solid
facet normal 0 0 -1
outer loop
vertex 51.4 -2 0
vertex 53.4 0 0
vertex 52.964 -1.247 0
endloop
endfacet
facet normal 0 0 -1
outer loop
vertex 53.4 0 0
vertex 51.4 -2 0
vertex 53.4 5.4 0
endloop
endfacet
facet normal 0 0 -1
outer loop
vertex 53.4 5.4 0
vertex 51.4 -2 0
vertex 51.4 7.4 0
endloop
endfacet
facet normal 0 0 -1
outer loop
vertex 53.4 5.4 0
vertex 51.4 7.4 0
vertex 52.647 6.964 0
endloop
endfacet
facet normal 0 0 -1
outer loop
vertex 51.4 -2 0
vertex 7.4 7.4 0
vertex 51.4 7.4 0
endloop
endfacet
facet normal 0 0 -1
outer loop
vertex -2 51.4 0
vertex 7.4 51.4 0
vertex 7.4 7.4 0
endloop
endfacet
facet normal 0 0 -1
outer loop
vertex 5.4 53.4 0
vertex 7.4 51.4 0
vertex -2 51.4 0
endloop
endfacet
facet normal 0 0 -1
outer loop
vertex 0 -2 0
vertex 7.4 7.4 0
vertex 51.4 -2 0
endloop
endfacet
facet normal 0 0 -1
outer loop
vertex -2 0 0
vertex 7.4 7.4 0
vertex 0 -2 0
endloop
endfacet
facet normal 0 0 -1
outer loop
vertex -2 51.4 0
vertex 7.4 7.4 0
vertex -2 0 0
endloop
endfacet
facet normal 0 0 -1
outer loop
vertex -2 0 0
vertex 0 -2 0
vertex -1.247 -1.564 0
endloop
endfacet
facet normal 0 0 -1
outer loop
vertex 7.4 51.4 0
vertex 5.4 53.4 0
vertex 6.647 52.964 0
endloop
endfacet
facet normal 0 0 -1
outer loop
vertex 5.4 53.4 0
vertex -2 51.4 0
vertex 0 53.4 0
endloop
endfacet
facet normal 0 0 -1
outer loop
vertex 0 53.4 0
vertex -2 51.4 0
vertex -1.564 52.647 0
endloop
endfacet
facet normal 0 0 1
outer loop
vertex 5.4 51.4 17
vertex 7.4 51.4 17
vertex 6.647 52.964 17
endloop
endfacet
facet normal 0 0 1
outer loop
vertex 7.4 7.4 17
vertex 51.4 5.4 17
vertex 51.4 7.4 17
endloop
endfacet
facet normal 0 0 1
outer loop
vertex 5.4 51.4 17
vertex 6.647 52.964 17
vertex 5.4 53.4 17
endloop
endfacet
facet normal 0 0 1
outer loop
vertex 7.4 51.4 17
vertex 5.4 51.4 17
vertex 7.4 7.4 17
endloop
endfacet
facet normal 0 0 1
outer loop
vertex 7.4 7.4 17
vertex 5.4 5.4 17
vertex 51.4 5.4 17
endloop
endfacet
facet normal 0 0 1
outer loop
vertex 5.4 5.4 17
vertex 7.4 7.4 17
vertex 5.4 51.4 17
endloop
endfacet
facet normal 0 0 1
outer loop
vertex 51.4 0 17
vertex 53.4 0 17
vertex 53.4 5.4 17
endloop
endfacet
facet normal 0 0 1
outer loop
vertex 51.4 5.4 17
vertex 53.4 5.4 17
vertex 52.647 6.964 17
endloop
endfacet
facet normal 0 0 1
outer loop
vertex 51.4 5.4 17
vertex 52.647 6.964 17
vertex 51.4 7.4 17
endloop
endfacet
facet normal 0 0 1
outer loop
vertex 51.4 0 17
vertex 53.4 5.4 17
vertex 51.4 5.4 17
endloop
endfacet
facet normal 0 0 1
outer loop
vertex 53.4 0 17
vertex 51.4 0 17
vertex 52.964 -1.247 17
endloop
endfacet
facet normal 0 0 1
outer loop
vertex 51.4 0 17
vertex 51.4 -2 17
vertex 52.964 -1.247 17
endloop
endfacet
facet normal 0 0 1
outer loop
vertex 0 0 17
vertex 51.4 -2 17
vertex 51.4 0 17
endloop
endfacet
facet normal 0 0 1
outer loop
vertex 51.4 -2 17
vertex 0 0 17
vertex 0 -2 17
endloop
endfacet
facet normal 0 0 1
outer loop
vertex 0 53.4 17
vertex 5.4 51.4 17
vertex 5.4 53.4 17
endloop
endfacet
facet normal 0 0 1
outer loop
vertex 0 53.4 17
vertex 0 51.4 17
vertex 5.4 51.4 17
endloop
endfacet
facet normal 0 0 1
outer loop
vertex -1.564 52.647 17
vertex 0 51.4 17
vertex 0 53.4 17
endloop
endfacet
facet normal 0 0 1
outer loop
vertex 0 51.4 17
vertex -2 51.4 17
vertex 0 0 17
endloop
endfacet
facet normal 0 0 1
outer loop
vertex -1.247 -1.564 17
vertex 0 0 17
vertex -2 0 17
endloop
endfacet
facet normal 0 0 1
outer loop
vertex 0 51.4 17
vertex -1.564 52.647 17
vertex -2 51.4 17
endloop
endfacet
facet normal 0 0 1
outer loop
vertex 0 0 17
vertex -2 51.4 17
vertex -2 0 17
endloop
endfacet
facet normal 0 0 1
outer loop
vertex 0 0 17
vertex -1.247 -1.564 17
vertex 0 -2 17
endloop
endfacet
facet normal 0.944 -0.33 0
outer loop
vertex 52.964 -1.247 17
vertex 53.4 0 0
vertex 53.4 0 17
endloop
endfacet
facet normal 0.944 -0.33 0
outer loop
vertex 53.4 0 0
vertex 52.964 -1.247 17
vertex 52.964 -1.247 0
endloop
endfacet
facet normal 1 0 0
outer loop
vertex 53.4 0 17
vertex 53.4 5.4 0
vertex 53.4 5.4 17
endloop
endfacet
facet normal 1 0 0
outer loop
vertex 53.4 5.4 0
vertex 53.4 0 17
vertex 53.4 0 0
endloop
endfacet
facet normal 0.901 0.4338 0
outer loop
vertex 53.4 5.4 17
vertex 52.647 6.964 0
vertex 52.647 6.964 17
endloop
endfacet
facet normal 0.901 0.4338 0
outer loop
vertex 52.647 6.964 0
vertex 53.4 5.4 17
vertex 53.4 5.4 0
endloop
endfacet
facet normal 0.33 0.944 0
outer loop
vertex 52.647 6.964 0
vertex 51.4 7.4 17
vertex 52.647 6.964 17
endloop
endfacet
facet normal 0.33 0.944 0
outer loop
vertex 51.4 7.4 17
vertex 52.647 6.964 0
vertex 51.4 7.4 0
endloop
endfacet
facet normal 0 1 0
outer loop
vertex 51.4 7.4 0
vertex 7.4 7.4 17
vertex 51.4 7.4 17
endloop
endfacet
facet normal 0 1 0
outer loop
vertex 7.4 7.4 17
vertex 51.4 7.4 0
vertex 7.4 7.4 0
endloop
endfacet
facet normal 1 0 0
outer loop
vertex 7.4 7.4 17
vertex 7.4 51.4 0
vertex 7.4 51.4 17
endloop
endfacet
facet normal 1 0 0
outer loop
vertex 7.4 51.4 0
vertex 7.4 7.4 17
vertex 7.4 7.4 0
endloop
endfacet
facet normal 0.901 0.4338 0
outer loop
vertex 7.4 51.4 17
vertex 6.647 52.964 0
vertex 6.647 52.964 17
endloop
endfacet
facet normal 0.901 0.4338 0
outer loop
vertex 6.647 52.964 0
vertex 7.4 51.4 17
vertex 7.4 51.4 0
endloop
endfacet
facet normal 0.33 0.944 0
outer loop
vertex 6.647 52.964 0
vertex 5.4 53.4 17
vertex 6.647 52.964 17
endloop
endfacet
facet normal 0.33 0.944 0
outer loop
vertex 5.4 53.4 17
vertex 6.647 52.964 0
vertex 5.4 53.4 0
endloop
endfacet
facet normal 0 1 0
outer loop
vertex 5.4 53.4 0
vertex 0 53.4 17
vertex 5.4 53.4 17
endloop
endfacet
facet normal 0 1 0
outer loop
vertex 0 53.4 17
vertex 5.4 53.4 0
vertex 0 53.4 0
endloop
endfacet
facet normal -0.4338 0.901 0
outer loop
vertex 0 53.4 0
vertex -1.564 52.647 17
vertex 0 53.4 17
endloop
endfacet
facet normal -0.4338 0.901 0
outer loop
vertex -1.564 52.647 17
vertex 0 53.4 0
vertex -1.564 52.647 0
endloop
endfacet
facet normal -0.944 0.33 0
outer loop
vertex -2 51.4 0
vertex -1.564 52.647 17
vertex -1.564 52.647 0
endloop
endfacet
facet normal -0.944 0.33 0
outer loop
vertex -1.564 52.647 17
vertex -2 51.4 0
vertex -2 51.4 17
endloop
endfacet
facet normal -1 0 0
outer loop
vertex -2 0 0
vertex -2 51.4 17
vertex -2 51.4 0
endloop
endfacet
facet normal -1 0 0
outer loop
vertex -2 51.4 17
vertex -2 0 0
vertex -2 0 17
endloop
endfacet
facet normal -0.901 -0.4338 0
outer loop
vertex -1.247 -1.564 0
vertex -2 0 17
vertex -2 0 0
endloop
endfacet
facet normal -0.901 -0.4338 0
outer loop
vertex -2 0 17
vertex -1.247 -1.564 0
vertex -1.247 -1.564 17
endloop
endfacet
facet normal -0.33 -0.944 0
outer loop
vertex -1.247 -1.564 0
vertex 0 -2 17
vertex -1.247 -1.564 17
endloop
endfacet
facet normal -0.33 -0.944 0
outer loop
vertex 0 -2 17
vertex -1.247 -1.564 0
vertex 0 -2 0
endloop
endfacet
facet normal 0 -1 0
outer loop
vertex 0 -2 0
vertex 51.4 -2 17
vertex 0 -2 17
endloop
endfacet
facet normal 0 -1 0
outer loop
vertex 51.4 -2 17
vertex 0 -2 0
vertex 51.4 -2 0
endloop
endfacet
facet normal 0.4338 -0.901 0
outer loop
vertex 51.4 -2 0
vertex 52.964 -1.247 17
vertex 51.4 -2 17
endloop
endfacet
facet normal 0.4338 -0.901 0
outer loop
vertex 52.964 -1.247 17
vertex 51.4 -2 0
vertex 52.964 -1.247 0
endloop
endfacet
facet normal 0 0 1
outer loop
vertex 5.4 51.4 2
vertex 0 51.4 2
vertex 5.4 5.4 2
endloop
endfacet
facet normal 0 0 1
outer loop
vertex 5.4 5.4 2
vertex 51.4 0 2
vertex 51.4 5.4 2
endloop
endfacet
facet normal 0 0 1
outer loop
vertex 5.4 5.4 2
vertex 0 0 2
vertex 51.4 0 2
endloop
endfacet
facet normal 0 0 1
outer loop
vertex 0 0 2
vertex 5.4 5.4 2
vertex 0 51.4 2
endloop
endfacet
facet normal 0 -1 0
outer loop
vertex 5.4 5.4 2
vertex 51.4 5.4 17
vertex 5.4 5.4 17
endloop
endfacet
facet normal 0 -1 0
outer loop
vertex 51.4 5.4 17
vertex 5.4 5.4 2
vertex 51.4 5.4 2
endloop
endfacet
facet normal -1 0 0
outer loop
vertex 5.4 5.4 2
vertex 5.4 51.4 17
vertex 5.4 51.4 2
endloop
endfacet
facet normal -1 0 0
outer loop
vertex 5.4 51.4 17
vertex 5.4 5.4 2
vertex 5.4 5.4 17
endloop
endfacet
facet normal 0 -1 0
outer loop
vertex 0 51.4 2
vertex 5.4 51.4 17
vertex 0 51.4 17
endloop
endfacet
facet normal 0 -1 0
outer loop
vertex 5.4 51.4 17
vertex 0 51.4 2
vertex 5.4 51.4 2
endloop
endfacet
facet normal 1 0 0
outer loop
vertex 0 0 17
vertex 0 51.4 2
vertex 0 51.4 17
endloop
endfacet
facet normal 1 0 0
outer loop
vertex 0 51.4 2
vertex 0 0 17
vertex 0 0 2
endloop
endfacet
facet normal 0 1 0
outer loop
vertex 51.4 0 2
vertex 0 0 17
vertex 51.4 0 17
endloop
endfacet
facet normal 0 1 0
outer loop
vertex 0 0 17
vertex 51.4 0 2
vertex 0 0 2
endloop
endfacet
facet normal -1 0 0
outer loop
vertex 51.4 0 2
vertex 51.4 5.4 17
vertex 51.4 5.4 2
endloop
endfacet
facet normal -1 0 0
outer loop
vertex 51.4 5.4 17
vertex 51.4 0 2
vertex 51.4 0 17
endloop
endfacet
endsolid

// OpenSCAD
// End cap for the 2 x 2 x 3/16 in angle rails. Slips over a cut end so nothing sharp faces
// the wall gap or the cabinet. Four needed. Print with the closed end down. PETG or ABS;
// a dab of hot glue if it is loose.

leg    = 50.8;
t      = 4.8;
slack  = 0.3;   // per side
wall   = 2;
depth  = 15;

module L2d(l, th) { polygon([[0, 0], [l, 0], [l, th], [th, th], [th, l], [0, l]]); }

difference() {
    linear_extrude(depth + wall) offset(r = wall) L2d(leg + 2 * slack, t + 2 * slack);
    translate([0, 0, wall]) linear_extrude(depth + 1) L2d(leg + 2 * slack, t + 2 * slack);
}
